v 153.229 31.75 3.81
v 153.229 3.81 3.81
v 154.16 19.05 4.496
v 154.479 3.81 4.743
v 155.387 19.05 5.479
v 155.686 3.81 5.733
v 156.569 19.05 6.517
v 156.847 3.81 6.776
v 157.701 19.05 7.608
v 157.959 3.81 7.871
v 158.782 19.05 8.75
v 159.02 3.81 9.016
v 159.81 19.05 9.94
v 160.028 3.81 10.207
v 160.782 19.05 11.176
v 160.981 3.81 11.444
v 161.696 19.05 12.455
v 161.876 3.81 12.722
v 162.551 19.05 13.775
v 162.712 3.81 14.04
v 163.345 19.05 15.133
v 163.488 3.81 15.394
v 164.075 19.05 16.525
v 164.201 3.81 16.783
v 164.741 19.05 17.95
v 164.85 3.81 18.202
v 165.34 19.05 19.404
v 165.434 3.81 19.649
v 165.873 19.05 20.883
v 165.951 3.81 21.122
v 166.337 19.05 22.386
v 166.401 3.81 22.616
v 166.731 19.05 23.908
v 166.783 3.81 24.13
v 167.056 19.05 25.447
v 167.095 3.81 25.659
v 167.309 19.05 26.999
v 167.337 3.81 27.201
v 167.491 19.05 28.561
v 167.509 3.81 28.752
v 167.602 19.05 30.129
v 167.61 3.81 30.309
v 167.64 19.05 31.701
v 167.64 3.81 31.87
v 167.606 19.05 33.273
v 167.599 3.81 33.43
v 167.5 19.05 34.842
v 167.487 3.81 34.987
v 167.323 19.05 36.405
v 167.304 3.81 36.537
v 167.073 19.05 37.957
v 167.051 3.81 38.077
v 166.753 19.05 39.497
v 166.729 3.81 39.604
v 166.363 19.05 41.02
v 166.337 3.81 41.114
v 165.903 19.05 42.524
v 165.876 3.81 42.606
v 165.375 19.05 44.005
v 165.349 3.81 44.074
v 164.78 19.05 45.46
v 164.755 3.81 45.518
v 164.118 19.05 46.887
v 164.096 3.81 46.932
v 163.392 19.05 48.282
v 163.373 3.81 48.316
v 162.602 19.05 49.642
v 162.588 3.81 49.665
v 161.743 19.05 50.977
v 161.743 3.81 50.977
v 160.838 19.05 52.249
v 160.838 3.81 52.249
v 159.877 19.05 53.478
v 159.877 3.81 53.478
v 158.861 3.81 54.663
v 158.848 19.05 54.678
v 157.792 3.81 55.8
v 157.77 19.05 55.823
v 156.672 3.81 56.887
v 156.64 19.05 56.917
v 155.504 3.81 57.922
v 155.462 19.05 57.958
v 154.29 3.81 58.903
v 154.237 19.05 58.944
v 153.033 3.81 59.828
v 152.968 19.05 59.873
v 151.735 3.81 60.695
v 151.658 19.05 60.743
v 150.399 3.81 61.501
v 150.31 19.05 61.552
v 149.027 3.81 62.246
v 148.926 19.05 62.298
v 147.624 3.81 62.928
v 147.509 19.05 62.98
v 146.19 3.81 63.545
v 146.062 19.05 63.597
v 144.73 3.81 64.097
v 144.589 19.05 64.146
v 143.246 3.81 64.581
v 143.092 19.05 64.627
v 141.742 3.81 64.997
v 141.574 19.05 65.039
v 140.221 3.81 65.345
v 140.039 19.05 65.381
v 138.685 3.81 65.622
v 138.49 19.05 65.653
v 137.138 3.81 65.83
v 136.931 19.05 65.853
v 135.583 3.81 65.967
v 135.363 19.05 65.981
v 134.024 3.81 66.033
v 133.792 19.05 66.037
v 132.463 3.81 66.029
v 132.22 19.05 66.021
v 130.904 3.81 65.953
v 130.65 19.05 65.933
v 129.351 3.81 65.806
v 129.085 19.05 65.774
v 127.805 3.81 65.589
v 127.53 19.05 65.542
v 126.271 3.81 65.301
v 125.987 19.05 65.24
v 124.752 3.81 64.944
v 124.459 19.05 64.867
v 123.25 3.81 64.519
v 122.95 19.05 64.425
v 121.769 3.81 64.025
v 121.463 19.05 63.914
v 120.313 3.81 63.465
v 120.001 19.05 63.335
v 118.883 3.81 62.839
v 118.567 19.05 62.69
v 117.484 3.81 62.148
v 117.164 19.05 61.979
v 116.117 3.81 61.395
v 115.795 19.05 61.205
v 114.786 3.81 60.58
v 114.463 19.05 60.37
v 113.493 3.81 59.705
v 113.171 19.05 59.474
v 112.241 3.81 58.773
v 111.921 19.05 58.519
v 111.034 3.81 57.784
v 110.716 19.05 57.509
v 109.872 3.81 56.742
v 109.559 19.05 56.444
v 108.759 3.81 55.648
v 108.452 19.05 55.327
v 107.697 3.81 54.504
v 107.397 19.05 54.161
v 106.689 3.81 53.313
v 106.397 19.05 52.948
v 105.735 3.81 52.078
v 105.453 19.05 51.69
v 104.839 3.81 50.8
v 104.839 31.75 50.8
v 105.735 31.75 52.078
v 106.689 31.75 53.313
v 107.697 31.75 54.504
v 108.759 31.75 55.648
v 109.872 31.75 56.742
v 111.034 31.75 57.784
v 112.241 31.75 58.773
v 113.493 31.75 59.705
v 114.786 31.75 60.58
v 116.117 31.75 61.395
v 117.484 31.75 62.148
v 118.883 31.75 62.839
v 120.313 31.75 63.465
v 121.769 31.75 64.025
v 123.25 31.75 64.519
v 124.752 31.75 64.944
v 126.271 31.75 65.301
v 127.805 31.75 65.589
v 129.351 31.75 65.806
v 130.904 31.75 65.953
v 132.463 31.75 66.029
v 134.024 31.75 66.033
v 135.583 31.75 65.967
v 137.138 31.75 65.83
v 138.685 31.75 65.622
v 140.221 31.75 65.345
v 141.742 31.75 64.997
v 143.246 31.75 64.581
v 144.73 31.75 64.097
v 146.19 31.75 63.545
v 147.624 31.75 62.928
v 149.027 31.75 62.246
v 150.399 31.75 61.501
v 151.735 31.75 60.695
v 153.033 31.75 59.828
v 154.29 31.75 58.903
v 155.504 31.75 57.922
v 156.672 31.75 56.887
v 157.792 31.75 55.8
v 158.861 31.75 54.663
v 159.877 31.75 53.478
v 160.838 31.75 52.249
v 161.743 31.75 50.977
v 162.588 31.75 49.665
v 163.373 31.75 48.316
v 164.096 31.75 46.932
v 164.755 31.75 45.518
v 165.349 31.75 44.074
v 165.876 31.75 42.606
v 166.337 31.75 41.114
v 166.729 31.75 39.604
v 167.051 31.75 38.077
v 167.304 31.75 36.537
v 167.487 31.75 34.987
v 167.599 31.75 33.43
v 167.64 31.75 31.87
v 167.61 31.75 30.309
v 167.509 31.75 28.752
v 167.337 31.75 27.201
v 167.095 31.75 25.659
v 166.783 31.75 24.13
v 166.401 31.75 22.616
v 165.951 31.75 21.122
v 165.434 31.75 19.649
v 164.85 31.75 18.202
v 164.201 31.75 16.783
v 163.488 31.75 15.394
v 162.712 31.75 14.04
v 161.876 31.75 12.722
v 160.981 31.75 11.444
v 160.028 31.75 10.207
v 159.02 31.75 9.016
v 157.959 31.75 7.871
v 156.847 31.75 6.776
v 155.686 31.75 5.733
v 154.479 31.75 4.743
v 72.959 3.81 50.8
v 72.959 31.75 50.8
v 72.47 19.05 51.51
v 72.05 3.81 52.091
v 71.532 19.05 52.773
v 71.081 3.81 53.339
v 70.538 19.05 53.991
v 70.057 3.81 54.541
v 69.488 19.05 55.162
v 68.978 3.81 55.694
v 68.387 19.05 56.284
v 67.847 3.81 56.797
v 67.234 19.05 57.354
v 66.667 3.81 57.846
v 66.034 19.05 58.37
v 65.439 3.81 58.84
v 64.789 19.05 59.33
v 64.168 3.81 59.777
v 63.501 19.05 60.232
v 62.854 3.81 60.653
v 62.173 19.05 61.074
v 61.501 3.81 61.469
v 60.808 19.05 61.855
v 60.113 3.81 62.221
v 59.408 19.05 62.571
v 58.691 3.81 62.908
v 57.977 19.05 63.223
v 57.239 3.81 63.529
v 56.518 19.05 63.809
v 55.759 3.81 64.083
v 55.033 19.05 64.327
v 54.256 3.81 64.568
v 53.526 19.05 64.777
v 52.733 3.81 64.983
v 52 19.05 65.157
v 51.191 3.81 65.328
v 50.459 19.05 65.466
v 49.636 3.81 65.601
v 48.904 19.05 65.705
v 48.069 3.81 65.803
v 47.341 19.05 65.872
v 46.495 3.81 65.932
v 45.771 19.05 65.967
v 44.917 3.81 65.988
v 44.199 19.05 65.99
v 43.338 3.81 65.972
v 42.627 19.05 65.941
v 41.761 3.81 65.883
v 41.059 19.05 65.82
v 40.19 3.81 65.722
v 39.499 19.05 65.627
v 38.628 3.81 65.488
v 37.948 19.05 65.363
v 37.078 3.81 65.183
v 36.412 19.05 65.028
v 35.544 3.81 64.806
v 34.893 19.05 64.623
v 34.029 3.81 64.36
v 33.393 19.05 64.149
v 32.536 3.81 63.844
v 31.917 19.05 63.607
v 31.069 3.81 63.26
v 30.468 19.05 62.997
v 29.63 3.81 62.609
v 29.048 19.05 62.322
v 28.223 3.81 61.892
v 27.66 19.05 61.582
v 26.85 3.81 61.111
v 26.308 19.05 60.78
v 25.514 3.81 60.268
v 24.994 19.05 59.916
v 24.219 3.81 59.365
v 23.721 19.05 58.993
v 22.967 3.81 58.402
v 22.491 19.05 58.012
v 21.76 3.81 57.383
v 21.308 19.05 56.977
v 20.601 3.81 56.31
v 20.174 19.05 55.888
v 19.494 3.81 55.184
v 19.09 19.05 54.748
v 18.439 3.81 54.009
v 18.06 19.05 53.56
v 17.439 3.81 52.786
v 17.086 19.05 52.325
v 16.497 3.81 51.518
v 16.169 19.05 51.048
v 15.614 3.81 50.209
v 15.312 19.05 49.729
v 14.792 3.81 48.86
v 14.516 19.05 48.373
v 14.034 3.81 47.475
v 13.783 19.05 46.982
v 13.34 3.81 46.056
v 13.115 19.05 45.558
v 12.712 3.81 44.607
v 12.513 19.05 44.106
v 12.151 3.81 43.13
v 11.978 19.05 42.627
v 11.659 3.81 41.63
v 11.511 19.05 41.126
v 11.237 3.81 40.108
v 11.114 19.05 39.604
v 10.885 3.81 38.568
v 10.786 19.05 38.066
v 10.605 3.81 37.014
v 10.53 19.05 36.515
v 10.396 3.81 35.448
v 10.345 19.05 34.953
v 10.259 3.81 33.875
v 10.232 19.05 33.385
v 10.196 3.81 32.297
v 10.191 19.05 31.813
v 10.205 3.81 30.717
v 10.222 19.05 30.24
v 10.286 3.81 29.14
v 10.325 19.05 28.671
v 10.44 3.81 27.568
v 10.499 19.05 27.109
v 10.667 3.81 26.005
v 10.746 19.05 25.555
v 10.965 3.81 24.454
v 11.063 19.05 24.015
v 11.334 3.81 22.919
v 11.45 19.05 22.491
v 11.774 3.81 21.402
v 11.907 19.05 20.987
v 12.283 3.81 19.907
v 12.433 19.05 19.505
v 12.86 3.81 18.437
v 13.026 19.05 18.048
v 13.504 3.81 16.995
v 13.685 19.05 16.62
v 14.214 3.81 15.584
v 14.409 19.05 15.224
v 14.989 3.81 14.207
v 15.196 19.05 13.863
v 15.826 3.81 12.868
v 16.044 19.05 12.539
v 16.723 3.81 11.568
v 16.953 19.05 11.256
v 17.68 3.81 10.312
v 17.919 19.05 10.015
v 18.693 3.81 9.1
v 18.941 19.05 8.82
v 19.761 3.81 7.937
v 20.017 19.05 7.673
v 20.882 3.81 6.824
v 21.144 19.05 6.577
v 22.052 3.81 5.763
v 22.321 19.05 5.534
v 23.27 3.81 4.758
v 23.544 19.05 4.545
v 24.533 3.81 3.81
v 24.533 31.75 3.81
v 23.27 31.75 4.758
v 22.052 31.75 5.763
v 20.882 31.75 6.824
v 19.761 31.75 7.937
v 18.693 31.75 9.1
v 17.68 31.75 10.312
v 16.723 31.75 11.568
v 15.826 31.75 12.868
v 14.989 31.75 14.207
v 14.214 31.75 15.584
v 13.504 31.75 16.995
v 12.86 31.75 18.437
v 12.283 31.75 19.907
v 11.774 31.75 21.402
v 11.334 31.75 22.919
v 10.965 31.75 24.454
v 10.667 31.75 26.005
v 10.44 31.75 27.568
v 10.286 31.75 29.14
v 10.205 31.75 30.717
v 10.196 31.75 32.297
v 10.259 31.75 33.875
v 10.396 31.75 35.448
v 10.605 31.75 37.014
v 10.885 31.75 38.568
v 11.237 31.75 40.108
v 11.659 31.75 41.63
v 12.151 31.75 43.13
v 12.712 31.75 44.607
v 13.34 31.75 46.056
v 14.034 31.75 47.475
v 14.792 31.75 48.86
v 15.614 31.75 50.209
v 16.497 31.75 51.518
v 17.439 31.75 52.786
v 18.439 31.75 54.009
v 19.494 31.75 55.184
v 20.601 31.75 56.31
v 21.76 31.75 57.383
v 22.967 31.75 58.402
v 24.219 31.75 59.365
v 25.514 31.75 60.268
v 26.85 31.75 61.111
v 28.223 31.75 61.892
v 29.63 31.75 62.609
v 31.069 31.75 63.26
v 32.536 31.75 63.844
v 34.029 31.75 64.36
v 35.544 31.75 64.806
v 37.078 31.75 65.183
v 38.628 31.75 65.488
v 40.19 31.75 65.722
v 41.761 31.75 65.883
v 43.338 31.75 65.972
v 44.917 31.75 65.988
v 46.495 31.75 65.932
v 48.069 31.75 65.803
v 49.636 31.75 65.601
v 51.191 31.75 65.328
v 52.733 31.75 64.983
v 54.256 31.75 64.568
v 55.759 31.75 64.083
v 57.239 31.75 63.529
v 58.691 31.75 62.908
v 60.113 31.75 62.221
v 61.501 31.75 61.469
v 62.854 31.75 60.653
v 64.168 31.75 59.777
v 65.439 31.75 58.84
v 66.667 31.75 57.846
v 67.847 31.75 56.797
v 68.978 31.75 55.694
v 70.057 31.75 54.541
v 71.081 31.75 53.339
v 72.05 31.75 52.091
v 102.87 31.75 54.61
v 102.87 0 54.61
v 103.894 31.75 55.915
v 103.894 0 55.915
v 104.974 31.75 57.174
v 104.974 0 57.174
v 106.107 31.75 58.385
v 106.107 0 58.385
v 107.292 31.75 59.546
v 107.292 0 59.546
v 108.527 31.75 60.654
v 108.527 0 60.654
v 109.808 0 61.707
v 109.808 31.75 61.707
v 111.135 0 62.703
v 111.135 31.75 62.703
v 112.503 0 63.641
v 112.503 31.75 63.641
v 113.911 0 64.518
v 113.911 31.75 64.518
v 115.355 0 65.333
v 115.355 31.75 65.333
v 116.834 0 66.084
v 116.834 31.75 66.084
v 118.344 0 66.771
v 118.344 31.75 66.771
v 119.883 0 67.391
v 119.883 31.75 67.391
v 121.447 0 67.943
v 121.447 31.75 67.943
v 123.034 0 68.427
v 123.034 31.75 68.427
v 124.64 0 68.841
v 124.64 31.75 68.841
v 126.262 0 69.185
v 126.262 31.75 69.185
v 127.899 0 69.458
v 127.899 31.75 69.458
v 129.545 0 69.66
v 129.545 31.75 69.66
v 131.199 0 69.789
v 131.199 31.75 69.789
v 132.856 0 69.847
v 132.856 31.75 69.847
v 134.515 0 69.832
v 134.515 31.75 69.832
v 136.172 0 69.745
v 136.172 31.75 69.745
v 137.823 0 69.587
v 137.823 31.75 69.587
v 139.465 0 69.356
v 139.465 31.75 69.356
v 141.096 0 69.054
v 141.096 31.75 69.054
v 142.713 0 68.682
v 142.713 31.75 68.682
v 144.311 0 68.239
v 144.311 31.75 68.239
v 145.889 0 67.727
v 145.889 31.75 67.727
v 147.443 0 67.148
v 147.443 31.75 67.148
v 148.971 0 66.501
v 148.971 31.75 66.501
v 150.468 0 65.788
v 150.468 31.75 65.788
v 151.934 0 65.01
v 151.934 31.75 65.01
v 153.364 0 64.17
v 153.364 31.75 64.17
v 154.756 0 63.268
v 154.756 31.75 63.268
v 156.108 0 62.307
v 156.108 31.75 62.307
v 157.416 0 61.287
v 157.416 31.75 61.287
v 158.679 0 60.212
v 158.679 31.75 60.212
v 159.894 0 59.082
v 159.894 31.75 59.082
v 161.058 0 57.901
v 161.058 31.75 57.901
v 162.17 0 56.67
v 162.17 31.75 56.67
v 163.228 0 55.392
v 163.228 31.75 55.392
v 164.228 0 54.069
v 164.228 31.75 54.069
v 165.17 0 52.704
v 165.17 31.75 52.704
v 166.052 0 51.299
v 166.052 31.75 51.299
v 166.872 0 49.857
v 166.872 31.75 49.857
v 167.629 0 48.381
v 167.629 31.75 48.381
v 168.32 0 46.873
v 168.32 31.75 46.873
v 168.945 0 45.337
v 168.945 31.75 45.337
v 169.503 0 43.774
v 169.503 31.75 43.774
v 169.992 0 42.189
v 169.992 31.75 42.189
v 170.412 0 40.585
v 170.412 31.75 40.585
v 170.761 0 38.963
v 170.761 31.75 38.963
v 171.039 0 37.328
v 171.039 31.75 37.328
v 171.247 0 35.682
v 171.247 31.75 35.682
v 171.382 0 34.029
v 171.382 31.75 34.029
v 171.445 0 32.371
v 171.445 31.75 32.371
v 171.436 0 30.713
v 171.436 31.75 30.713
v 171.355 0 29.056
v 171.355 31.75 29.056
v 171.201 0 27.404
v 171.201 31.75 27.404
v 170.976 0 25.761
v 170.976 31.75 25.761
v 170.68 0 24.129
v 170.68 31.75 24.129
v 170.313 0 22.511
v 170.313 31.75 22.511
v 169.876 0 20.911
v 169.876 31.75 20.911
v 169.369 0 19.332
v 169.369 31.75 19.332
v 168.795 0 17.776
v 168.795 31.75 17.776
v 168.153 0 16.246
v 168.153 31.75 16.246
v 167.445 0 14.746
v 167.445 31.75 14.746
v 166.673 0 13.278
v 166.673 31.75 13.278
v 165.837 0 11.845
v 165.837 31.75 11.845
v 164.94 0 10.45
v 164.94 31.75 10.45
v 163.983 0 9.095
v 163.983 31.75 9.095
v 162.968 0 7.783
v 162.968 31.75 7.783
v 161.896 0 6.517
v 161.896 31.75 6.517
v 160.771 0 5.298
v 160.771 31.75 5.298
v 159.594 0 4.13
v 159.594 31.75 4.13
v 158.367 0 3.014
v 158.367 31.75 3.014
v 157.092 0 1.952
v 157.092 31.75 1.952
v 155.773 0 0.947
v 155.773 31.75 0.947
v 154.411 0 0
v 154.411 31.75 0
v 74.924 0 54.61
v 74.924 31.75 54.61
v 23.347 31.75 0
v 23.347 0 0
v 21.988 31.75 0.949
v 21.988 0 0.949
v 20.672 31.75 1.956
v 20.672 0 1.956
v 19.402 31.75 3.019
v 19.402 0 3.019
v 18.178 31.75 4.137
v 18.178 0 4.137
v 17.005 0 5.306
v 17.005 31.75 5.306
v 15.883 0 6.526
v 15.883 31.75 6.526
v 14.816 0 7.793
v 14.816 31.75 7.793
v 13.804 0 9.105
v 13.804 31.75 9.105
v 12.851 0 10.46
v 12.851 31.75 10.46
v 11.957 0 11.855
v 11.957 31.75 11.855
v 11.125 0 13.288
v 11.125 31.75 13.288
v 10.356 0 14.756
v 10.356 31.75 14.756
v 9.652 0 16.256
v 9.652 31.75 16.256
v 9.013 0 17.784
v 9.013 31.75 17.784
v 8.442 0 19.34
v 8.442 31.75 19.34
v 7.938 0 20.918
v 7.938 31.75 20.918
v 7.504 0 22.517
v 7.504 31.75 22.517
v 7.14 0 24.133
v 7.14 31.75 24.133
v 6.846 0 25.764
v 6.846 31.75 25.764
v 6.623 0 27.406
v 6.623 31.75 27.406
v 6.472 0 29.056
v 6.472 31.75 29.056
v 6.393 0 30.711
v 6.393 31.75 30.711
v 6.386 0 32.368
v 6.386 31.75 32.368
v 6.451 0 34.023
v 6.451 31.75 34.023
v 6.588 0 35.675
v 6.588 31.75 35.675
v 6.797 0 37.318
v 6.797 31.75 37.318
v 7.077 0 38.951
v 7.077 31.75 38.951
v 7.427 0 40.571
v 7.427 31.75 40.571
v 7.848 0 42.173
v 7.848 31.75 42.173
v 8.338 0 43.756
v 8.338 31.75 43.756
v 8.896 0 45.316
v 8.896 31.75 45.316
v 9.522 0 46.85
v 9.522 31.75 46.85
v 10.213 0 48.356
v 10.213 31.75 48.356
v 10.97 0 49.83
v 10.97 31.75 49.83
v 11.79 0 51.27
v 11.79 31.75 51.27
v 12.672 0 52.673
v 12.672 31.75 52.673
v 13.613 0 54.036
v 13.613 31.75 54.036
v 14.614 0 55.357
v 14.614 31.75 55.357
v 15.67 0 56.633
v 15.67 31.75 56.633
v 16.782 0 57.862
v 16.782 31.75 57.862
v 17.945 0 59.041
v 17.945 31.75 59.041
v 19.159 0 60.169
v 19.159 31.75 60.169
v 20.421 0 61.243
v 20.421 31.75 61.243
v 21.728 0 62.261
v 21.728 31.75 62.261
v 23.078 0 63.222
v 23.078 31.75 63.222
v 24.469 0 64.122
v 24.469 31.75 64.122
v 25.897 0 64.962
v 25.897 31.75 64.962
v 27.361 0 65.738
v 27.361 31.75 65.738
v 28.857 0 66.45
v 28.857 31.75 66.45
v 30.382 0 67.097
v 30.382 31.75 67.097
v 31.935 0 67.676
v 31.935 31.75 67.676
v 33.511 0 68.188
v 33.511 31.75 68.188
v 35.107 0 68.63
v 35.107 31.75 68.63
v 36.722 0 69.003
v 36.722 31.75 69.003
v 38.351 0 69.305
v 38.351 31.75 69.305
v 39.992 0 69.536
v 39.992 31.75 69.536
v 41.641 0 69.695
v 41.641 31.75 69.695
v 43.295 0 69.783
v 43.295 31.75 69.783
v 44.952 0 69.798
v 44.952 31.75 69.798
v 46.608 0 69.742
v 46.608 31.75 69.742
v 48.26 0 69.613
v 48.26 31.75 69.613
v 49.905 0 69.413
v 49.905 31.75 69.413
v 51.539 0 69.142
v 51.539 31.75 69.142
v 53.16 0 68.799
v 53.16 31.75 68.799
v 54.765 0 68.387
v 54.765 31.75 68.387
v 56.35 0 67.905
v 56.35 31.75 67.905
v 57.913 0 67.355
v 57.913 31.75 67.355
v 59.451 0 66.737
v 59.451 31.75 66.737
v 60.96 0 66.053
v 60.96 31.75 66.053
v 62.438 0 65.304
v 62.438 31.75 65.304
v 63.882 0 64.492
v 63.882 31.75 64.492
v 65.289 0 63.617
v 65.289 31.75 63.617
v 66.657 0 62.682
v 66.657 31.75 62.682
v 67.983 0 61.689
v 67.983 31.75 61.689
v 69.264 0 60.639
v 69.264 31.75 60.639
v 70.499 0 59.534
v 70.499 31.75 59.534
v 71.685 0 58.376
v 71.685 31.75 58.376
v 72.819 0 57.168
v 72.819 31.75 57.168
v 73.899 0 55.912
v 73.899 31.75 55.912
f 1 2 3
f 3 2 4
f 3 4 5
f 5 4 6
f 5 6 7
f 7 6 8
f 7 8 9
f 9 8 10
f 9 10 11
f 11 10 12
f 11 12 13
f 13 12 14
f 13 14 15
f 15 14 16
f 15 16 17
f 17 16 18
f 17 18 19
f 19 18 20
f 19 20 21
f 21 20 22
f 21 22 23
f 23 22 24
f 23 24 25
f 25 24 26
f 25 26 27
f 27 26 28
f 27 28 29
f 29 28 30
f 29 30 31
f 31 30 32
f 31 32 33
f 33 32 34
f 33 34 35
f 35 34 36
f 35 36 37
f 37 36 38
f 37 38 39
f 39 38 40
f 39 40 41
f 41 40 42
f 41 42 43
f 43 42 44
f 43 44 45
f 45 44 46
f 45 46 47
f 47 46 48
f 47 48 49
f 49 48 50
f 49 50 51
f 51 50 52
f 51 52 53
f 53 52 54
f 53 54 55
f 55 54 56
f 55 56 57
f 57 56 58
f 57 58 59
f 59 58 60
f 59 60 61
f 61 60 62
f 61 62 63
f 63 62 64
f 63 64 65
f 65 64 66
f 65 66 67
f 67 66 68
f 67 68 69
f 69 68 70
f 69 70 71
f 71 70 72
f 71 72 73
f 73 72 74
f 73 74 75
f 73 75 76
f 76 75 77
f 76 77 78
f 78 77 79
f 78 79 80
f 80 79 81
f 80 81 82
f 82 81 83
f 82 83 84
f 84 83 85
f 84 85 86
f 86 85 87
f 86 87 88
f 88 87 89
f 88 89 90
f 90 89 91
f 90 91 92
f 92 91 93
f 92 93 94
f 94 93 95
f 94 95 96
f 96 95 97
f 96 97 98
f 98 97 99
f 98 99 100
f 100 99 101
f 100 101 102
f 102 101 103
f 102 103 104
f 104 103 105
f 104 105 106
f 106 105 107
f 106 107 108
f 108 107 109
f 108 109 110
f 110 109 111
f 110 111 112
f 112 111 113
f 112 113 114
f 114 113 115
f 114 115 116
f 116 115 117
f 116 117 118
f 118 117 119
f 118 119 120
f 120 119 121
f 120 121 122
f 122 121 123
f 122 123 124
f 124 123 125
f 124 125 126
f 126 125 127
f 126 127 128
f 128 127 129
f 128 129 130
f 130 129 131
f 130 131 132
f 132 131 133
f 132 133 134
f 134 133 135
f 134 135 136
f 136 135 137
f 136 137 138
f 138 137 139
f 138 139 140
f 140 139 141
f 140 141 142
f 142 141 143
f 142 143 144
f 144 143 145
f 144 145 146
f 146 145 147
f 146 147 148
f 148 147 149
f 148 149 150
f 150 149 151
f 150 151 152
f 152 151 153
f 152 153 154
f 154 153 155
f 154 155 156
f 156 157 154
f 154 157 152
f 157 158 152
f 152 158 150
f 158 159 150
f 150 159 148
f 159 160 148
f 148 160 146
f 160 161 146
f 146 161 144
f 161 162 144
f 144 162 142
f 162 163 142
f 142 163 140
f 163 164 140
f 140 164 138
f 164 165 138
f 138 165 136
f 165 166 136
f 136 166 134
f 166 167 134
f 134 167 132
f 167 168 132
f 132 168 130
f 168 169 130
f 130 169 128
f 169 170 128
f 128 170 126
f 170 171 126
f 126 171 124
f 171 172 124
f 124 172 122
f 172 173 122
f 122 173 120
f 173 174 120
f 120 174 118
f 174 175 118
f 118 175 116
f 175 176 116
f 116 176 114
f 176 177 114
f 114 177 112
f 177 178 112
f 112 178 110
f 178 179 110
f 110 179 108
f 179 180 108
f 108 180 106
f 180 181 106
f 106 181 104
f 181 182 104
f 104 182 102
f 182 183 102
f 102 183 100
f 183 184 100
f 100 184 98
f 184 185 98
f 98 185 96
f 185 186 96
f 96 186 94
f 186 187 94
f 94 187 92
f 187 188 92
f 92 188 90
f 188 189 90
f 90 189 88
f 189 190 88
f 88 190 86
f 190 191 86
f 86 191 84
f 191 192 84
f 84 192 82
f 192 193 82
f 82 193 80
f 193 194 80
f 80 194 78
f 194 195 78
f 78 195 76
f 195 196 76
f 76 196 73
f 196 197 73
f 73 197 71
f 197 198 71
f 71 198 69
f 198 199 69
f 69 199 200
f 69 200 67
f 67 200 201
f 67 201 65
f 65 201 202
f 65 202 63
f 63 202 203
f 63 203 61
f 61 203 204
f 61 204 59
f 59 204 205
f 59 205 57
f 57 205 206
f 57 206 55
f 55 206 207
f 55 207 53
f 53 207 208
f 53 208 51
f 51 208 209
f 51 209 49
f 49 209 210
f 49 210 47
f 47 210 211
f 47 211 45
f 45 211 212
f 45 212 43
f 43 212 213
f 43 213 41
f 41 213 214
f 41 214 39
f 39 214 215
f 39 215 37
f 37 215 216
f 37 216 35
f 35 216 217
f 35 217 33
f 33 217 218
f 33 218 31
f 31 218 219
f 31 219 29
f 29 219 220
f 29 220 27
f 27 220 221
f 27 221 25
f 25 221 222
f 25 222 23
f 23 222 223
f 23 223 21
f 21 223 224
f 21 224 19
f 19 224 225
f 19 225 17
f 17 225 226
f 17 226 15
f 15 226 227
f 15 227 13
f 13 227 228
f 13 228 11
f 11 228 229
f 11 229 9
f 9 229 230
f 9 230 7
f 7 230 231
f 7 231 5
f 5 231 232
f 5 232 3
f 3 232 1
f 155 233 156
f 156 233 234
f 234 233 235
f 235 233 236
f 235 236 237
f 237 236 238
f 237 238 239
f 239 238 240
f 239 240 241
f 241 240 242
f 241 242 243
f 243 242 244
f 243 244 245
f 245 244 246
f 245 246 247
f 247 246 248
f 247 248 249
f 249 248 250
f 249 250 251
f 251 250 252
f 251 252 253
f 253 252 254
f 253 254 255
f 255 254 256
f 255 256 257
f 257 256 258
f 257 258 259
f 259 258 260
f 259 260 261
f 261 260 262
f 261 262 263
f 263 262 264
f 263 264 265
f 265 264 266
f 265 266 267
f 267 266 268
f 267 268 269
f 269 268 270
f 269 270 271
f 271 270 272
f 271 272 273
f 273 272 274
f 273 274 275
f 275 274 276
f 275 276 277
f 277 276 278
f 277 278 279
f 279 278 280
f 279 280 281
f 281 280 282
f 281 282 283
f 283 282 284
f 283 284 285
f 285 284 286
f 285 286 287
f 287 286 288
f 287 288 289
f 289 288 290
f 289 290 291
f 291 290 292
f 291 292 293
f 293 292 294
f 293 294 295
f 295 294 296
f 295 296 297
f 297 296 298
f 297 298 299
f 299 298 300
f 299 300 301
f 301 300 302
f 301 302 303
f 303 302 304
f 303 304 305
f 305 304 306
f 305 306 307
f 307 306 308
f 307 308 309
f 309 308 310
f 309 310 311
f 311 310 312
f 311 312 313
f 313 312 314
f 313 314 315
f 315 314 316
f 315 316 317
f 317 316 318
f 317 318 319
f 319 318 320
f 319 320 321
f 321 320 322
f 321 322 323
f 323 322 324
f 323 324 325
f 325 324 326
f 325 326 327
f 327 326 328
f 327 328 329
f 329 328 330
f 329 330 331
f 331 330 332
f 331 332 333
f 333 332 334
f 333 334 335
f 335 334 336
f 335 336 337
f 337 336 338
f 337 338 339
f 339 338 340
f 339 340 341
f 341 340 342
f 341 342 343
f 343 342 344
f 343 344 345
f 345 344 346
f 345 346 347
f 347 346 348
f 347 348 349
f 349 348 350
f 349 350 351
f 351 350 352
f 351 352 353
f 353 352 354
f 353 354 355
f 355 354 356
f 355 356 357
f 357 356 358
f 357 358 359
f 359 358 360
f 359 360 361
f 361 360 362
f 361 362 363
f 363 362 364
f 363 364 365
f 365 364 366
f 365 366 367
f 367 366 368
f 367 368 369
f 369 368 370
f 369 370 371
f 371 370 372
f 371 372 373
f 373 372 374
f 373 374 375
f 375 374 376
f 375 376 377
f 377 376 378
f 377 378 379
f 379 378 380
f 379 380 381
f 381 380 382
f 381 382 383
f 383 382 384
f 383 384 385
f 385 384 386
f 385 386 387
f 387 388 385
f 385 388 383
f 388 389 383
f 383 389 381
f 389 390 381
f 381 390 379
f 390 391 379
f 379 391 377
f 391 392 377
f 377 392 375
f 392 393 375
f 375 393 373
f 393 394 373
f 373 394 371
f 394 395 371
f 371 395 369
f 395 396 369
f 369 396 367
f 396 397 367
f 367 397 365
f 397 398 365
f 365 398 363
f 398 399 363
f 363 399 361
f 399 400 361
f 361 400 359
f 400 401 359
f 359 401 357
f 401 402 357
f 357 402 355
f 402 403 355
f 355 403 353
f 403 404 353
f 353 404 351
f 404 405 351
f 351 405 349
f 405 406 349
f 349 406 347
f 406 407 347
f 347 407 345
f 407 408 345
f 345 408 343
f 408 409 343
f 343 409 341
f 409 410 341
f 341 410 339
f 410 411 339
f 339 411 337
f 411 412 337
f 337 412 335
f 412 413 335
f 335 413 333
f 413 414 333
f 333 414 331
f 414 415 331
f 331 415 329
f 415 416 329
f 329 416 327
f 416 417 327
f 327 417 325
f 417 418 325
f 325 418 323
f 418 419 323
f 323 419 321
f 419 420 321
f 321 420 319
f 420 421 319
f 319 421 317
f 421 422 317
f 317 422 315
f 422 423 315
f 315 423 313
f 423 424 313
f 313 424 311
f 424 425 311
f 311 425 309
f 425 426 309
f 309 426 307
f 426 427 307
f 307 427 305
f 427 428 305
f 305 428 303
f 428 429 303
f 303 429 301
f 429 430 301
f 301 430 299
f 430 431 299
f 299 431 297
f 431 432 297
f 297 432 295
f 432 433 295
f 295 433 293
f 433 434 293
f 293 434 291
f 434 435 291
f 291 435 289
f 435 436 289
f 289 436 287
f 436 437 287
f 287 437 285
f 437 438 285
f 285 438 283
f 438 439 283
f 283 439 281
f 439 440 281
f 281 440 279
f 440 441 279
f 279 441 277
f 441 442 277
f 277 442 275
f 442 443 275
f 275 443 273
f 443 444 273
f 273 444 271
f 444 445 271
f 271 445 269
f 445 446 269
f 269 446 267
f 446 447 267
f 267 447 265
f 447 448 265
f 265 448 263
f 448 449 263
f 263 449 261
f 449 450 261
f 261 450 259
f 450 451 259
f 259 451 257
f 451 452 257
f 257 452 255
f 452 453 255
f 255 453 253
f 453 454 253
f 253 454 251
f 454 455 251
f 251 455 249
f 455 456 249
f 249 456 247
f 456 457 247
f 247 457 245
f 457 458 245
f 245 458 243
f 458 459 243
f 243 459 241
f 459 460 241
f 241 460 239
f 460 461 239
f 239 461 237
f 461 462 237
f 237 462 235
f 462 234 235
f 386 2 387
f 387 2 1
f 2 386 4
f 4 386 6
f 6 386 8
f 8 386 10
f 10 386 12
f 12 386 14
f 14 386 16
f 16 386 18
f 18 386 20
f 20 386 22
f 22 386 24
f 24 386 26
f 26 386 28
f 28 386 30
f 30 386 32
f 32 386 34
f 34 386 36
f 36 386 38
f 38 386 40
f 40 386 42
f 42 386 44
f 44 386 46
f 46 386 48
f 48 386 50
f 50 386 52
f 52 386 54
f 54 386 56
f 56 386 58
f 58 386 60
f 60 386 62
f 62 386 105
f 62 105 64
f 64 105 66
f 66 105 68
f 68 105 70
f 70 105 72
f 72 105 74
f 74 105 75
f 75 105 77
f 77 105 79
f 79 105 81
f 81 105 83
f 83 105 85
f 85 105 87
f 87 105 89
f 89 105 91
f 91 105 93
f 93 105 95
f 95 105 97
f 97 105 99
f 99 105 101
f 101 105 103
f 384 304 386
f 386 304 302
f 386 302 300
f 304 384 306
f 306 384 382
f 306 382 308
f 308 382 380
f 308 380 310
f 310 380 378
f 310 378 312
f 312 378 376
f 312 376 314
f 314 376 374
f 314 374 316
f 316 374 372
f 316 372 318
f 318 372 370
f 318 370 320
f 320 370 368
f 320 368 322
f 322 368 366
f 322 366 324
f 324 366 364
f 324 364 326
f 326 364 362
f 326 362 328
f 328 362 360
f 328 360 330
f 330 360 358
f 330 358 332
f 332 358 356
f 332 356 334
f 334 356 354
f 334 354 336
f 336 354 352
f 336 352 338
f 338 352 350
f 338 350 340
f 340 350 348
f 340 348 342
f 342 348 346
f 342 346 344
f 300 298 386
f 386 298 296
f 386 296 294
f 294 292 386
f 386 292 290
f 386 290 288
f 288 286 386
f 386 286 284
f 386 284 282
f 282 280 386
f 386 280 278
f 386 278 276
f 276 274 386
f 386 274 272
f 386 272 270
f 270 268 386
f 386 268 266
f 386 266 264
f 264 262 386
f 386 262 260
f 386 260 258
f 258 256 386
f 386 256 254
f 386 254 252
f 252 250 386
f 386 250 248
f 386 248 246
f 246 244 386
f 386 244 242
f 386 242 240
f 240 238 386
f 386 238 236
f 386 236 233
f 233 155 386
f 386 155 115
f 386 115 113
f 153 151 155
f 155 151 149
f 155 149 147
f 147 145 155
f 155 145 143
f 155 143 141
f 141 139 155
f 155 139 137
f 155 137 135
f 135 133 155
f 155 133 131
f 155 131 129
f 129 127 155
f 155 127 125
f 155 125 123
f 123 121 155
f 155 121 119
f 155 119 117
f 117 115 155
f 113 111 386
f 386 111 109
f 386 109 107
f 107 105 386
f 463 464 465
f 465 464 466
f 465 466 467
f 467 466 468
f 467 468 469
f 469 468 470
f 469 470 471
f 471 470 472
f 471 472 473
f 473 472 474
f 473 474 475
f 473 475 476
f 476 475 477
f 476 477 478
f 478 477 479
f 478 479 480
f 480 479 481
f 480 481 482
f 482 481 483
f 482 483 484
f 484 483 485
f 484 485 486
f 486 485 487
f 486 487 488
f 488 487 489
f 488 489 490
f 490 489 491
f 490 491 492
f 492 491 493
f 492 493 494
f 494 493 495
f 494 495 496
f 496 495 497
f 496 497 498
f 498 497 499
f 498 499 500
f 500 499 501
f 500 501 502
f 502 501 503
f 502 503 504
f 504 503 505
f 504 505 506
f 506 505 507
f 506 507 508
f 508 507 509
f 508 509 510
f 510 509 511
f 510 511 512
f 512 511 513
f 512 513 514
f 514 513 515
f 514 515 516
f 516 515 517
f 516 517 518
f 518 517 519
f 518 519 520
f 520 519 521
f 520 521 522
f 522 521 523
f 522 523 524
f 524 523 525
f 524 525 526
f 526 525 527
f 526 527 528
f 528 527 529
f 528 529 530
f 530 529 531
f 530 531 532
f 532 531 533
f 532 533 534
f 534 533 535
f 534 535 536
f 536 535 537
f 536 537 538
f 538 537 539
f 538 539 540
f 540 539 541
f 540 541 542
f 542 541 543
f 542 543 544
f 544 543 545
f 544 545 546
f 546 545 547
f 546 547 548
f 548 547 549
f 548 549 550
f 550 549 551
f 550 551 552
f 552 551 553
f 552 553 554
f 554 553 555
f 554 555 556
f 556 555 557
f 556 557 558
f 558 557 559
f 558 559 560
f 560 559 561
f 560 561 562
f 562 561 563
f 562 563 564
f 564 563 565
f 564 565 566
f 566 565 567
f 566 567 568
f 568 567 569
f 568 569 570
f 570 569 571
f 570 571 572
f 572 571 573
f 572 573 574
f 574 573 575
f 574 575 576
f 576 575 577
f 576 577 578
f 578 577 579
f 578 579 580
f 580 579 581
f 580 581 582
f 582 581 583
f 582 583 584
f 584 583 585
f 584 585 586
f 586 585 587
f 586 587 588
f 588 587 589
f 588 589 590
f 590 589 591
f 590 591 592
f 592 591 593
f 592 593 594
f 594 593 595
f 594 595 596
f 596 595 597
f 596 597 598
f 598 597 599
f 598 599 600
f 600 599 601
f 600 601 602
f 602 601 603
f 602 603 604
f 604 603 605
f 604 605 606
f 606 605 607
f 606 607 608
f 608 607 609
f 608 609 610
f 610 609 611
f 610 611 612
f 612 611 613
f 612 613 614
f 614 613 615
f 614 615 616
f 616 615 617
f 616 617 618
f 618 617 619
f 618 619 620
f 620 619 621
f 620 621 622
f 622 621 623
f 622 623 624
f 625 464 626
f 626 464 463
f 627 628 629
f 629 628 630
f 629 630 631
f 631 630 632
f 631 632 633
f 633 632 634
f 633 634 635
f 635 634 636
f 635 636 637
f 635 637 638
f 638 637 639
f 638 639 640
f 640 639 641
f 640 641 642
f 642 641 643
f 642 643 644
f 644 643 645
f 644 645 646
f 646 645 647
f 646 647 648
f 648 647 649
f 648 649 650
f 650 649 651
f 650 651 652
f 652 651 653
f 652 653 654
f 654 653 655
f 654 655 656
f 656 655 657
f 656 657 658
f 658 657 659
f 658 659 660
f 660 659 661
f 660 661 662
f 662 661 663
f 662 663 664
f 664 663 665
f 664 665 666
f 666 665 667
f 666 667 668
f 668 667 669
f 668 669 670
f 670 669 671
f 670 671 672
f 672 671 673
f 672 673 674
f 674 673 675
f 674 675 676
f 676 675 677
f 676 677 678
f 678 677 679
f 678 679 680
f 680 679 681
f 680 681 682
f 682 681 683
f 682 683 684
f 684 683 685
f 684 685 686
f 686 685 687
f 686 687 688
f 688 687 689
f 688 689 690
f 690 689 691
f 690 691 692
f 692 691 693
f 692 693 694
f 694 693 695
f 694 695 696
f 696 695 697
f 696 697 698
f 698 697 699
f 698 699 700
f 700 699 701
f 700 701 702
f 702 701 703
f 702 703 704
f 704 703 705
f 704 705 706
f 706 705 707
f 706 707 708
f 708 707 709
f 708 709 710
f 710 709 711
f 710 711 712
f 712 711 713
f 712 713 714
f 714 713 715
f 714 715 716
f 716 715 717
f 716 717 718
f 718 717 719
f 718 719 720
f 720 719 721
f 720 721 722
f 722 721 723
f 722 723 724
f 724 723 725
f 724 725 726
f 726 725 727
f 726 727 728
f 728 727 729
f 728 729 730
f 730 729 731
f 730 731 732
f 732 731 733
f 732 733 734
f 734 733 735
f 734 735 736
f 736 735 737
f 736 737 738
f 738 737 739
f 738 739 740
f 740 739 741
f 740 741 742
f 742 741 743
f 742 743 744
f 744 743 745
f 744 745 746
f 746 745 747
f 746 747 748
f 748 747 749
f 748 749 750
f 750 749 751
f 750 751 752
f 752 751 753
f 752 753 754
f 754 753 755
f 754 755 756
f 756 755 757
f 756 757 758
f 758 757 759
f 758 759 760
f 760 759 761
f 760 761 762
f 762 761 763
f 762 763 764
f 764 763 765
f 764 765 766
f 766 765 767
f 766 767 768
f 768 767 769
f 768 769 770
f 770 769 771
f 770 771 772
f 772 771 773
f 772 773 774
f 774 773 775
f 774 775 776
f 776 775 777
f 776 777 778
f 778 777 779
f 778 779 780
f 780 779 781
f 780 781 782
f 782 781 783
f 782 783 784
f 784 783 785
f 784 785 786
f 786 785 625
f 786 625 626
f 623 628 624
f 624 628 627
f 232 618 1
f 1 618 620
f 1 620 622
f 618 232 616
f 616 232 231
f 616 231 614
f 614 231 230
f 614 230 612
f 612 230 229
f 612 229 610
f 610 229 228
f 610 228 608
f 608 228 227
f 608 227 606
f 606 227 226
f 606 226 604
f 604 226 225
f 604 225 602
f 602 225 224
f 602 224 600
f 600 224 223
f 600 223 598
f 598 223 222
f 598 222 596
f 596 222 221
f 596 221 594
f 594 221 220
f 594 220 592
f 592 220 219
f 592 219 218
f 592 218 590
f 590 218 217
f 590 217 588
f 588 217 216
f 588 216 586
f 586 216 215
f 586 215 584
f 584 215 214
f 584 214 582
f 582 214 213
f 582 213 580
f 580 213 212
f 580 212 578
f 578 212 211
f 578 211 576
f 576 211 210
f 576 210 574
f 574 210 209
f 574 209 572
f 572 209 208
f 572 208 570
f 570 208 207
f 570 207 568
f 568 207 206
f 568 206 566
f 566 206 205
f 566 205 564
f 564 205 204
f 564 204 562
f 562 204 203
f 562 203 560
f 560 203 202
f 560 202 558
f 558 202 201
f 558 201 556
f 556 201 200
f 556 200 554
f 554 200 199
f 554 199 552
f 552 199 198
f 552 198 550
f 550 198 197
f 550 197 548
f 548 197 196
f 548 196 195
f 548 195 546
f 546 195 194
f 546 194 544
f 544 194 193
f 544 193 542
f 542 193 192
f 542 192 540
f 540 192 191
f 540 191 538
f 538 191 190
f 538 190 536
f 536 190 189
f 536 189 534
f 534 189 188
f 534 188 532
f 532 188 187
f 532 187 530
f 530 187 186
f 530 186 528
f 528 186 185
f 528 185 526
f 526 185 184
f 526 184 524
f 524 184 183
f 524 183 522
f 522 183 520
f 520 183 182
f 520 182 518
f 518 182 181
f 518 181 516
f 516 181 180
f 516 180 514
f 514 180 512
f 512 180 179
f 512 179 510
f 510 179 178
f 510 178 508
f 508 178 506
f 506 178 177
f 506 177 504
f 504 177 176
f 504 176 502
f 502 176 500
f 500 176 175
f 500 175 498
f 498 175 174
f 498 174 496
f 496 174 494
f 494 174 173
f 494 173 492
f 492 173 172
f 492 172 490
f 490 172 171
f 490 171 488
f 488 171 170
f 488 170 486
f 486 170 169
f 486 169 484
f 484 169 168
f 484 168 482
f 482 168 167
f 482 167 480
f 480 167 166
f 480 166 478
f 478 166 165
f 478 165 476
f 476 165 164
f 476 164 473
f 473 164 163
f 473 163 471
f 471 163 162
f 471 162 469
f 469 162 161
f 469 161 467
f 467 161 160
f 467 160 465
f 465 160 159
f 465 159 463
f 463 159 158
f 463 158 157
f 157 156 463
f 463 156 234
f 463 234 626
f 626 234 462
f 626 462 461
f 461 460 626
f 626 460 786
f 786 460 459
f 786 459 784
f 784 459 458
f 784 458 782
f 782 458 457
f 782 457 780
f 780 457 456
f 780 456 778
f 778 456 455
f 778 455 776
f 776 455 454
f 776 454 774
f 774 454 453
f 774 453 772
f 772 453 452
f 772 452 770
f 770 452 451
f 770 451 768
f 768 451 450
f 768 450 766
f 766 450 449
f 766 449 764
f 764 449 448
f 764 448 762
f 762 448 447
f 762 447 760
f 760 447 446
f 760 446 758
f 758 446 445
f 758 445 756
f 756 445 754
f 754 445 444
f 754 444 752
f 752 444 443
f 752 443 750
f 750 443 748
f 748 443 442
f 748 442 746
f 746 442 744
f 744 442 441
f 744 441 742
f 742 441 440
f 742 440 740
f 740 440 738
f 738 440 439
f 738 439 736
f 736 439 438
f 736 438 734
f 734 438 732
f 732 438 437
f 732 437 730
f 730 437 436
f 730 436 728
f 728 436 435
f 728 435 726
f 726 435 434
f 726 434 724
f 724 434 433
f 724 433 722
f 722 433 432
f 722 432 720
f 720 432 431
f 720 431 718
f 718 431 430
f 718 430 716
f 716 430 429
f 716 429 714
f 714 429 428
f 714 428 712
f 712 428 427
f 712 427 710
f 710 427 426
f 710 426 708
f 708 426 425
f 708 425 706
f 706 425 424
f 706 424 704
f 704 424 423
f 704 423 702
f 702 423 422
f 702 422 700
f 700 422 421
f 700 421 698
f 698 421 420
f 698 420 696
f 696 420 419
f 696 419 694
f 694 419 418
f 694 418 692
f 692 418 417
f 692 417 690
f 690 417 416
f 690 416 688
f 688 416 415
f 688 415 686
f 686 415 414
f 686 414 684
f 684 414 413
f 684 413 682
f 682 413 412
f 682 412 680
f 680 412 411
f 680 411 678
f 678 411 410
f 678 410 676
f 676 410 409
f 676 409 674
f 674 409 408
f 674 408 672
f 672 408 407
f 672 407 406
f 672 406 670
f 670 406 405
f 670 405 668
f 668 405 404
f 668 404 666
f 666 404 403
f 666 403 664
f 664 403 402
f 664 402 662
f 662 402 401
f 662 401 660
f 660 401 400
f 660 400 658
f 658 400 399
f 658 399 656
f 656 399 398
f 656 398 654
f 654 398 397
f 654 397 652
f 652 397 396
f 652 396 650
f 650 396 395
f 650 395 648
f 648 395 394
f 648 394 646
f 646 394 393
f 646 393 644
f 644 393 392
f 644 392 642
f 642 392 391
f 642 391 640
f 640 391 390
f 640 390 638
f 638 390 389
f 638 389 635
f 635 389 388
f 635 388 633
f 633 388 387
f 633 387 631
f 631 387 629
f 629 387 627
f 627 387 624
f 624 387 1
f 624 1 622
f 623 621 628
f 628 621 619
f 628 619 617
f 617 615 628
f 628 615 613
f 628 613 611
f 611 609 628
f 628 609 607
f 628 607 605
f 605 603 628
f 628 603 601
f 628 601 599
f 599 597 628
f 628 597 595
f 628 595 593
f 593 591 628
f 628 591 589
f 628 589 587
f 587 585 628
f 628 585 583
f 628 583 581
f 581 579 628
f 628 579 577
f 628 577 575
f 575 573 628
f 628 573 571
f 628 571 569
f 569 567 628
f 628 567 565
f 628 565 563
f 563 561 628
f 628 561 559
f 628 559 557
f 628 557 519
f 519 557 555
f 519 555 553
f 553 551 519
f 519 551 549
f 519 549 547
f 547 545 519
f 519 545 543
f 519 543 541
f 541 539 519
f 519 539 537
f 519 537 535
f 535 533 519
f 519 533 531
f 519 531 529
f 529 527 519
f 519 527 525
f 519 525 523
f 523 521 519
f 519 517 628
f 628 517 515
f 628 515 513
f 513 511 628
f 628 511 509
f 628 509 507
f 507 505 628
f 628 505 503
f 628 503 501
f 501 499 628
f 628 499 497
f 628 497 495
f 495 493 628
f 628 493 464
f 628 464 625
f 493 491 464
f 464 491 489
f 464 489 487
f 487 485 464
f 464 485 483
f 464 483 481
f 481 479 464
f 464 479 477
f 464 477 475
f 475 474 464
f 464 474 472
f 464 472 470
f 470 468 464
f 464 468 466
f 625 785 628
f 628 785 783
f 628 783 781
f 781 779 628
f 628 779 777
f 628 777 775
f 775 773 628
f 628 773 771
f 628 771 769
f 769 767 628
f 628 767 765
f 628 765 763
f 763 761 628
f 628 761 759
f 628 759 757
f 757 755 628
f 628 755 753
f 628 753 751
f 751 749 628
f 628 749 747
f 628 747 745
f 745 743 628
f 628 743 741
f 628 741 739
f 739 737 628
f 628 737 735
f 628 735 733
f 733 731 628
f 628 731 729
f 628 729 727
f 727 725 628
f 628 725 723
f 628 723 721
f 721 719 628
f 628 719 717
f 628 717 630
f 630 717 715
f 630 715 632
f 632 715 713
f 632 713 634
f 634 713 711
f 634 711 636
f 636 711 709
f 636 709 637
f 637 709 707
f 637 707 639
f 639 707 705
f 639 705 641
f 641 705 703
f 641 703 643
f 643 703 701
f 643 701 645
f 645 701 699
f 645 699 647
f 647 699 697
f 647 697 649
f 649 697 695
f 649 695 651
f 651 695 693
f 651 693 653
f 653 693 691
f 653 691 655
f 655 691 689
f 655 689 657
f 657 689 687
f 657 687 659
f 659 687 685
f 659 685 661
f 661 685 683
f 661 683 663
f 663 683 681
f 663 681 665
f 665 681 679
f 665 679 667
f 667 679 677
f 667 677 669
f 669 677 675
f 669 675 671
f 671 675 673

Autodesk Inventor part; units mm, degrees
ref_plane "YZ Plane" through (0, 0, 0) normal (1, 0, 0) x (0, 1, 0)
ref_plane "XZ Plane" through (0, 0, 0) normal (0, 1, 0) x (-1, 0, 0)
ref_plane "XY Plane" through (0, 0, 0) normal (0, 0, 1) x (1, 0, 0)
sketch "Sketch1" plane through (0, 0, 0) normal (0, 1, 0) x (-1, 0, 0)
  line L0 (-23.3466, 0) -> (-154.4106, 0)
  line L1 (-102.87, 54.61) -> (-74.9238, 54.61)
  line L2 (-88.9, 0) -> (-23.3466, 0)
  line L3 (-88.9, 0) -> (-154.4106, 0)
  arc A0 (-102.87, 54.61) -> (-154.4106, 0) centre (-133.35, 31.75) ccw
  arc A1 (-23.3466, 0) -> (-74.9238, 54.61) centre (-44.4805, 31.7012) ccw
  point P0 (0, 0)
  dimension "d2" = 76.2
  dimension "d3" = 76.2
  dimension "d5" = 131.064
  dimension "d10" = 54.61
extrude "Extrusion1" add sketch "Sketch1" along normal blind 31.75
shell "Shell1" thickness 3.81 removed faces 1 at (84.227, 31.75, 18.2033)
properties part number "paitent remote box"
